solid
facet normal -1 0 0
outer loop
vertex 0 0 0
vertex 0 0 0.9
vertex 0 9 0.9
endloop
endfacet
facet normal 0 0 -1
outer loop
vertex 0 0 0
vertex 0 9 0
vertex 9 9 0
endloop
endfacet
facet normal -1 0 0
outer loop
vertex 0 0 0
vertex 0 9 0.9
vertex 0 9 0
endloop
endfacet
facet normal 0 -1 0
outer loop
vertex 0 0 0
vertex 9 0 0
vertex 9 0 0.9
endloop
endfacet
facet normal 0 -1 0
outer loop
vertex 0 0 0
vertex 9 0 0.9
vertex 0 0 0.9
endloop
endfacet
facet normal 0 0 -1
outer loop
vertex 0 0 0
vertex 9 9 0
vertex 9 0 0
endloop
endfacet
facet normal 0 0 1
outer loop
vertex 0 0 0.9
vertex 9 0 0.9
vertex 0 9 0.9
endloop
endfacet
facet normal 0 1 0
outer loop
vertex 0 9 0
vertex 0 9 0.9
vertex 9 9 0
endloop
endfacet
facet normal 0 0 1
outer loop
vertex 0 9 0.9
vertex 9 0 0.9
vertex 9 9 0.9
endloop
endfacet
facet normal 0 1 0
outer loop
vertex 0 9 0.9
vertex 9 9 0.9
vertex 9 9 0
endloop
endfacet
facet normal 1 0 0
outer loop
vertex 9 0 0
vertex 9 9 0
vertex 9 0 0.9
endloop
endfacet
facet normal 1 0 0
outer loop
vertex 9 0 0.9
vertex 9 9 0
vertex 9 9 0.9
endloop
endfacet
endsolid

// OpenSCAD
/* Warning, this is a very basic generator with a lot of approximation 
input data : [VQFN, KJX, 9x9x0.9mm, 64, , B, C04-00450B]
generated by com.zoubworld.electronics.cad.model3d.Basic
Date : Sun Feb 15 10:50:48 CET 2026
*/

//body
color("black")
translate([0,0,0])
cube([9.0,9.0,0.9], center=false);
